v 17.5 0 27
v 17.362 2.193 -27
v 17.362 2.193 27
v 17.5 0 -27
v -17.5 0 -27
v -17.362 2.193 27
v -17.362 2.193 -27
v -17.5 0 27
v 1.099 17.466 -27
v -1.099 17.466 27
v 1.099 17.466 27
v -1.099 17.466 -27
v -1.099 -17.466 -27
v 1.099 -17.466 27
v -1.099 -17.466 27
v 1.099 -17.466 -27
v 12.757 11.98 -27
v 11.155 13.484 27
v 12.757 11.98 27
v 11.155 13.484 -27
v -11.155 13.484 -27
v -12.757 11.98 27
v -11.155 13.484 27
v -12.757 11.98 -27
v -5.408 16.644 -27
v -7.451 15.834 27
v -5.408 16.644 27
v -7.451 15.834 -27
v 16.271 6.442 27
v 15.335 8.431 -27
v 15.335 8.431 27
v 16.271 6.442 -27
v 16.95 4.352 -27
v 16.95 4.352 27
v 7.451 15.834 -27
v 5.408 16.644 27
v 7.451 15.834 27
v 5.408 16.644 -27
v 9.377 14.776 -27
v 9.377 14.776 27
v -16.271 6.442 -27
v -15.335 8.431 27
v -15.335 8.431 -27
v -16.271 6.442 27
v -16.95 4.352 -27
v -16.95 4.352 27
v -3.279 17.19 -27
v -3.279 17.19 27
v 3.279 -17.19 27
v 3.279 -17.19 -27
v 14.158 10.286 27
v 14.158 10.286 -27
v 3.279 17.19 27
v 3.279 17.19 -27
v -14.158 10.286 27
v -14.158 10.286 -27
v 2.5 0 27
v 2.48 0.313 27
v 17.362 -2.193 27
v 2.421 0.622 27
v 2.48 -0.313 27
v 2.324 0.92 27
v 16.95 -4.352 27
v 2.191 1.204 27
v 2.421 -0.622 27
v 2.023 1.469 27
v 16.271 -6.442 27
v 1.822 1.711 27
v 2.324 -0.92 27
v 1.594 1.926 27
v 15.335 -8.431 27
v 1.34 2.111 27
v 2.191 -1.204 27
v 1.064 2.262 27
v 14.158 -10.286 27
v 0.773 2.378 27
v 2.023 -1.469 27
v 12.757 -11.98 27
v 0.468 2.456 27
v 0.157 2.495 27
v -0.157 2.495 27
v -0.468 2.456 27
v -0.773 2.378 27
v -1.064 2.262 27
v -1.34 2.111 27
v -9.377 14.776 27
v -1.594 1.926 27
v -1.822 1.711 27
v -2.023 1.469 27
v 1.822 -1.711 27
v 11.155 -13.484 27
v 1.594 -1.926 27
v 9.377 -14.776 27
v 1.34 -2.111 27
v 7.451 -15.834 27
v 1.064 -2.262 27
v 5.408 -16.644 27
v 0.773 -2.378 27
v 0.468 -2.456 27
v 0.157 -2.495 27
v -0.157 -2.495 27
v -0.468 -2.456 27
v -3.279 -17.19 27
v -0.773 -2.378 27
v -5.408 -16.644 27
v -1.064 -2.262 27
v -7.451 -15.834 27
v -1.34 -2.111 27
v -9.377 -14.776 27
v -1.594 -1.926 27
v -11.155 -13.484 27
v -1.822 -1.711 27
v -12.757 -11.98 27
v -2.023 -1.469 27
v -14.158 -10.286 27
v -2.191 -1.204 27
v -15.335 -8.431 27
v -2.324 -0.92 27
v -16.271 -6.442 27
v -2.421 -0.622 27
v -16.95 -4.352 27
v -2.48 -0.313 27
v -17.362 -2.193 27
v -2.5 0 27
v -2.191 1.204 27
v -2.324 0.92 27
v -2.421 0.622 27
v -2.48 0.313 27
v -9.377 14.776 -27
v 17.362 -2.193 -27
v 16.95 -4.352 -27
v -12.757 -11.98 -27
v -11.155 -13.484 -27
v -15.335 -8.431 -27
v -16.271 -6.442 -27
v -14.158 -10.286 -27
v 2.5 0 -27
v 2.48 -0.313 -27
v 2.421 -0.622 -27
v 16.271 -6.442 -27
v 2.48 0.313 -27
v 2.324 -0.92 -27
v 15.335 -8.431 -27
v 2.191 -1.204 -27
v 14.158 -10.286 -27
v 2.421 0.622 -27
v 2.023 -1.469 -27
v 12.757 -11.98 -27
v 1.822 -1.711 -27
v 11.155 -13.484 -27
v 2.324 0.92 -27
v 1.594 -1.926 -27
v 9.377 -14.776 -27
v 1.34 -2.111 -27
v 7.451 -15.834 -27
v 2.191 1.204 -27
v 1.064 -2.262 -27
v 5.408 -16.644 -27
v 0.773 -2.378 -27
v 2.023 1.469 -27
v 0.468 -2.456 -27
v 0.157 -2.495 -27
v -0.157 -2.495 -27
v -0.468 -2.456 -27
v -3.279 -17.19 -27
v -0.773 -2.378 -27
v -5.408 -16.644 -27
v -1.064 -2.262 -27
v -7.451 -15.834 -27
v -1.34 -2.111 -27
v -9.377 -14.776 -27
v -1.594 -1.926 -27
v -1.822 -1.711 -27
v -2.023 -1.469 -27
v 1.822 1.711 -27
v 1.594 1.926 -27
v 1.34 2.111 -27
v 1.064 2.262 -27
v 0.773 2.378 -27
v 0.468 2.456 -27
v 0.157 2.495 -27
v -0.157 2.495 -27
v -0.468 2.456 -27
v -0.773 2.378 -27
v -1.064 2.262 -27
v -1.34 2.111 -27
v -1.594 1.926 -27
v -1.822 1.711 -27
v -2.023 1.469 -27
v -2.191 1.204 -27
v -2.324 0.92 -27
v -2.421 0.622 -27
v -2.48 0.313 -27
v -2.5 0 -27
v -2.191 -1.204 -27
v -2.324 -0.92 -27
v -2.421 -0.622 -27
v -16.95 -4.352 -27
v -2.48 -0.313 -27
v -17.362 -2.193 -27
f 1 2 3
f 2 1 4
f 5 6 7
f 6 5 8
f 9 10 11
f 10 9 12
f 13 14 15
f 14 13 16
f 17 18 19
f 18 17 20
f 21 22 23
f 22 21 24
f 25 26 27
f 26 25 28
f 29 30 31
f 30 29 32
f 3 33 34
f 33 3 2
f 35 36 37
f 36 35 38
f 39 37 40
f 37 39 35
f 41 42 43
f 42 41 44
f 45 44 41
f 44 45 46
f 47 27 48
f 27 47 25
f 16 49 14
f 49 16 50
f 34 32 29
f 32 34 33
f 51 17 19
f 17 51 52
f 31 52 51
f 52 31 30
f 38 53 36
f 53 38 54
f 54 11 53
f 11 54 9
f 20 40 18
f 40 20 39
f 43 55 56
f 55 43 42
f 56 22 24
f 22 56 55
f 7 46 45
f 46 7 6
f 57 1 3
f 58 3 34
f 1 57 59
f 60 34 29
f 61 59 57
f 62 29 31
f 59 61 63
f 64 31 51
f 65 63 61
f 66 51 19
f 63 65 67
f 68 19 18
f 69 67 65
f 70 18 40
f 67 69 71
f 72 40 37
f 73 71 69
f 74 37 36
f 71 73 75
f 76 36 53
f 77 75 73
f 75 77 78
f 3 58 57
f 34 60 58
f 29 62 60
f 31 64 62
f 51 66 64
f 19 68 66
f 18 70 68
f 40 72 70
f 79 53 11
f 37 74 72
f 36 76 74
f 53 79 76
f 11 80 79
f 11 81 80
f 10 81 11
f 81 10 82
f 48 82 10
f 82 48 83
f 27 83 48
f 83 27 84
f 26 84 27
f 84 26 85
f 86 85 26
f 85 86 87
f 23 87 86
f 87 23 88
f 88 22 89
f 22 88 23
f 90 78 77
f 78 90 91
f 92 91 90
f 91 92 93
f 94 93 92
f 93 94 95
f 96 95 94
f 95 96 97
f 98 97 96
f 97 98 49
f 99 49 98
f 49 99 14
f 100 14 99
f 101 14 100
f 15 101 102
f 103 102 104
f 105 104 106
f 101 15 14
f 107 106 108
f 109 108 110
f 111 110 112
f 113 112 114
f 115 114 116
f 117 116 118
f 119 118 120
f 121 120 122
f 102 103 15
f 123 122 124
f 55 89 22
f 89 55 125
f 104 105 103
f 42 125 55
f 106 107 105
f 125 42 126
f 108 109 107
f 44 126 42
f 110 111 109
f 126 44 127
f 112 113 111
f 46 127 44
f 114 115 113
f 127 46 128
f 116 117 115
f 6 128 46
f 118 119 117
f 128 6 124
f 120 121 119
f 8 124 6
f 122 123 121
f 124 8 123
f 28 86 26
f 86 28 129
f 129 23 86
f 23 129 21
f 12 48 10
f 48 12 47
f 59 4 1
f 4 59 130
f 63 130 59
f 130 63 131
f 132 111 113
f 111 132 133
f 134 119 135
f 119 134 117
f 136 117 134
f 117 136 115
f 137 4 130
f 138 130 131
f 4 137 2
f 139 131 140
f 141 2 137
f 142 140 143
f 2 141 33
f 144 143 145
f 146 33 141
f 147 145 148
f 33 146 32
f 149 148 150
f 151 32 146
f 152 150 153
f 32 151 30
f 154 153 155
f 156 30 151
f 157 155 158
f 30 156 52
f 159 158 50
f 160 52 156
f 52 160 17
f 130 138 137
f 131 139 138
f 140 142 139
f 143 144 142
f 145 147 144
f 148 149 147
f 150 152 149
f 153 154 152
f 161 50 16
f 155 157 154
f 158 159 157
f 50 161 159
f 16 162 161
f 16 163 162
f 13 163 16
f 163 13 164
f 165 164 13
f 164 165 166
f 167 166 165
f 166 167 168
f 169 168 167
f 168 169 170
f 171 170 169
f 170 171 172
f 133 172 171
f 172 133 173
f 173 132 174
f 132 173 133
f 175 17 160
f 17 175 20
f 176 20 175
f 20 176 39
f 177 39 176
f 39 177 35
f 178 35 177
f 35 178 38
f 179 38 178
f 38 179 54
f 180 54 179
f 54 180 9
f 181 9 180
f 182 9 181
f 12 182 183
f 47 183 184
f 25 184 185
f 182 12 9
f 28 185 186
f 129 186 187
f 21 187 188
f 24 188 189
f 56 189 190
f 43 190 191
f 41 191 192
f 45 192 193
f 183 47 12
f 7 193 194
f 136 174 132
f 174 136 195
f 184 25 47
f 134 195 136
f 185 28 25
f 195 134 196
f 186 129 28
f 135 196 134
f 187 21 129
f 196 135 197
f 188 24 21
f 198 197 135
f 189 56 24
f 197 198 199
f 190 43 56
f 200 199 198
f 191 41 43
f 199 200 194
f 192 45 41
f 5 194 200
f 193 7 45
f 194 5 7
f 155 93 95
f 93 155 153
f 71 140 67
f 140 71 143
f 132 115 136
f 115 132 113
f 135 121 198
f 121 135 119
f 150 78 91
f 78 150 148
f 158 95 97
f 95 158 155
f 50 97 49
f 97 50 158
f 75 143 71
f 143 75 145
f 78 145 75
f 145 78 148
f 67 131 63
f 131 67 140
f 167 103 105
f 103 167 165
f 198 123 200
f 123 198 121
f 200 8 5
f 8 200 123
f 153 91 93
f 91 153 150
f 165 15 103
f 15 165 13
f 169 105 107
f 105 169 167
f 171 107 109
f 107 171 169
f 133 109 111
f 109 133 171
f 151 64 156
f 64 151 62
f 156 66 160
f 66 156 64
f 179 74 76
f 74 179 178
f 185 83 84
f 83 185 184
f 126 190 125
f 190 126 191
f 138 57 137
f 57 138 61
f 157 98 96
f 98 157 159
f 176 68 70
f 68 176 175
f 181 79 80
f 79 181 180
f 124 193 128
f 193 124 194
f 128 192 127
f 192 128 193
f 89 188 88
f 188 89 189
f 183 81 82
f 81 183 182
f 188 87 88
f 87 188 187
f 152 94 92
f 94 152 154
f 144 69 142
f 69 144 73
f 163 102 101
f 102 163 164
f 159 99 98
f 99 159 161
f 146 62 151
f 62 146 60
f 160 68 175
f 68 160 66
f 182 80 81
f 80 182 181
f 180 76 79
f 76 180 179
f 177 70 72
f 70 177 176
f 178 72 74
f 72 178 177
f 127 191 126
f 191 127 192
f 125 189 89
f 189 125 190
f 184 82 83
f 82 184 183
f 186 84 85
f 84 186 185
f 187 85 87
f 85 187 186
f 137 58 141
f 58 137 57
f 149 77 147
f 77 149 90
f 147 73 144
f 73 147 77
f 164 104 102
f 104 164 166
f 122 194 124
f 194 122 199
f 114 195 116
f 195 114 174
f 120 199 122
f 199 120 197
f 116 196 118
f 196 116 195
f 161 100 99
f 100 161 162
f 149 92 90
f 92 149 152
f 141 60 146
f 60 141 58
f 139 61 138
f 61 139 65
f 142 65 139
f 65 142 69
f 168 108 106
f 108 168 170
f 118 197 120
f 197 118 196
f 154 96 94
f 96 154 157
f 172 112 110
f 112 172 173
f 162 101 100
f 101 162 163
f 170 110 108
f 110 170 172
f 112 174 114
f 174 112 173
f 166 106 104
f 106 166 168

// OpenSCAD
$fn = 50;


difference() {
	union() {
		translate(v = [0, 0, -27.0000000000]) {
			cylinder(h = 54, r = 17.5000000000);
		}
	}
	union() {
		translate(v = [0, 0, -100.0000000000]) {
			cylinder(h = 200, r = 2.5000000000);
		}
	}
}
